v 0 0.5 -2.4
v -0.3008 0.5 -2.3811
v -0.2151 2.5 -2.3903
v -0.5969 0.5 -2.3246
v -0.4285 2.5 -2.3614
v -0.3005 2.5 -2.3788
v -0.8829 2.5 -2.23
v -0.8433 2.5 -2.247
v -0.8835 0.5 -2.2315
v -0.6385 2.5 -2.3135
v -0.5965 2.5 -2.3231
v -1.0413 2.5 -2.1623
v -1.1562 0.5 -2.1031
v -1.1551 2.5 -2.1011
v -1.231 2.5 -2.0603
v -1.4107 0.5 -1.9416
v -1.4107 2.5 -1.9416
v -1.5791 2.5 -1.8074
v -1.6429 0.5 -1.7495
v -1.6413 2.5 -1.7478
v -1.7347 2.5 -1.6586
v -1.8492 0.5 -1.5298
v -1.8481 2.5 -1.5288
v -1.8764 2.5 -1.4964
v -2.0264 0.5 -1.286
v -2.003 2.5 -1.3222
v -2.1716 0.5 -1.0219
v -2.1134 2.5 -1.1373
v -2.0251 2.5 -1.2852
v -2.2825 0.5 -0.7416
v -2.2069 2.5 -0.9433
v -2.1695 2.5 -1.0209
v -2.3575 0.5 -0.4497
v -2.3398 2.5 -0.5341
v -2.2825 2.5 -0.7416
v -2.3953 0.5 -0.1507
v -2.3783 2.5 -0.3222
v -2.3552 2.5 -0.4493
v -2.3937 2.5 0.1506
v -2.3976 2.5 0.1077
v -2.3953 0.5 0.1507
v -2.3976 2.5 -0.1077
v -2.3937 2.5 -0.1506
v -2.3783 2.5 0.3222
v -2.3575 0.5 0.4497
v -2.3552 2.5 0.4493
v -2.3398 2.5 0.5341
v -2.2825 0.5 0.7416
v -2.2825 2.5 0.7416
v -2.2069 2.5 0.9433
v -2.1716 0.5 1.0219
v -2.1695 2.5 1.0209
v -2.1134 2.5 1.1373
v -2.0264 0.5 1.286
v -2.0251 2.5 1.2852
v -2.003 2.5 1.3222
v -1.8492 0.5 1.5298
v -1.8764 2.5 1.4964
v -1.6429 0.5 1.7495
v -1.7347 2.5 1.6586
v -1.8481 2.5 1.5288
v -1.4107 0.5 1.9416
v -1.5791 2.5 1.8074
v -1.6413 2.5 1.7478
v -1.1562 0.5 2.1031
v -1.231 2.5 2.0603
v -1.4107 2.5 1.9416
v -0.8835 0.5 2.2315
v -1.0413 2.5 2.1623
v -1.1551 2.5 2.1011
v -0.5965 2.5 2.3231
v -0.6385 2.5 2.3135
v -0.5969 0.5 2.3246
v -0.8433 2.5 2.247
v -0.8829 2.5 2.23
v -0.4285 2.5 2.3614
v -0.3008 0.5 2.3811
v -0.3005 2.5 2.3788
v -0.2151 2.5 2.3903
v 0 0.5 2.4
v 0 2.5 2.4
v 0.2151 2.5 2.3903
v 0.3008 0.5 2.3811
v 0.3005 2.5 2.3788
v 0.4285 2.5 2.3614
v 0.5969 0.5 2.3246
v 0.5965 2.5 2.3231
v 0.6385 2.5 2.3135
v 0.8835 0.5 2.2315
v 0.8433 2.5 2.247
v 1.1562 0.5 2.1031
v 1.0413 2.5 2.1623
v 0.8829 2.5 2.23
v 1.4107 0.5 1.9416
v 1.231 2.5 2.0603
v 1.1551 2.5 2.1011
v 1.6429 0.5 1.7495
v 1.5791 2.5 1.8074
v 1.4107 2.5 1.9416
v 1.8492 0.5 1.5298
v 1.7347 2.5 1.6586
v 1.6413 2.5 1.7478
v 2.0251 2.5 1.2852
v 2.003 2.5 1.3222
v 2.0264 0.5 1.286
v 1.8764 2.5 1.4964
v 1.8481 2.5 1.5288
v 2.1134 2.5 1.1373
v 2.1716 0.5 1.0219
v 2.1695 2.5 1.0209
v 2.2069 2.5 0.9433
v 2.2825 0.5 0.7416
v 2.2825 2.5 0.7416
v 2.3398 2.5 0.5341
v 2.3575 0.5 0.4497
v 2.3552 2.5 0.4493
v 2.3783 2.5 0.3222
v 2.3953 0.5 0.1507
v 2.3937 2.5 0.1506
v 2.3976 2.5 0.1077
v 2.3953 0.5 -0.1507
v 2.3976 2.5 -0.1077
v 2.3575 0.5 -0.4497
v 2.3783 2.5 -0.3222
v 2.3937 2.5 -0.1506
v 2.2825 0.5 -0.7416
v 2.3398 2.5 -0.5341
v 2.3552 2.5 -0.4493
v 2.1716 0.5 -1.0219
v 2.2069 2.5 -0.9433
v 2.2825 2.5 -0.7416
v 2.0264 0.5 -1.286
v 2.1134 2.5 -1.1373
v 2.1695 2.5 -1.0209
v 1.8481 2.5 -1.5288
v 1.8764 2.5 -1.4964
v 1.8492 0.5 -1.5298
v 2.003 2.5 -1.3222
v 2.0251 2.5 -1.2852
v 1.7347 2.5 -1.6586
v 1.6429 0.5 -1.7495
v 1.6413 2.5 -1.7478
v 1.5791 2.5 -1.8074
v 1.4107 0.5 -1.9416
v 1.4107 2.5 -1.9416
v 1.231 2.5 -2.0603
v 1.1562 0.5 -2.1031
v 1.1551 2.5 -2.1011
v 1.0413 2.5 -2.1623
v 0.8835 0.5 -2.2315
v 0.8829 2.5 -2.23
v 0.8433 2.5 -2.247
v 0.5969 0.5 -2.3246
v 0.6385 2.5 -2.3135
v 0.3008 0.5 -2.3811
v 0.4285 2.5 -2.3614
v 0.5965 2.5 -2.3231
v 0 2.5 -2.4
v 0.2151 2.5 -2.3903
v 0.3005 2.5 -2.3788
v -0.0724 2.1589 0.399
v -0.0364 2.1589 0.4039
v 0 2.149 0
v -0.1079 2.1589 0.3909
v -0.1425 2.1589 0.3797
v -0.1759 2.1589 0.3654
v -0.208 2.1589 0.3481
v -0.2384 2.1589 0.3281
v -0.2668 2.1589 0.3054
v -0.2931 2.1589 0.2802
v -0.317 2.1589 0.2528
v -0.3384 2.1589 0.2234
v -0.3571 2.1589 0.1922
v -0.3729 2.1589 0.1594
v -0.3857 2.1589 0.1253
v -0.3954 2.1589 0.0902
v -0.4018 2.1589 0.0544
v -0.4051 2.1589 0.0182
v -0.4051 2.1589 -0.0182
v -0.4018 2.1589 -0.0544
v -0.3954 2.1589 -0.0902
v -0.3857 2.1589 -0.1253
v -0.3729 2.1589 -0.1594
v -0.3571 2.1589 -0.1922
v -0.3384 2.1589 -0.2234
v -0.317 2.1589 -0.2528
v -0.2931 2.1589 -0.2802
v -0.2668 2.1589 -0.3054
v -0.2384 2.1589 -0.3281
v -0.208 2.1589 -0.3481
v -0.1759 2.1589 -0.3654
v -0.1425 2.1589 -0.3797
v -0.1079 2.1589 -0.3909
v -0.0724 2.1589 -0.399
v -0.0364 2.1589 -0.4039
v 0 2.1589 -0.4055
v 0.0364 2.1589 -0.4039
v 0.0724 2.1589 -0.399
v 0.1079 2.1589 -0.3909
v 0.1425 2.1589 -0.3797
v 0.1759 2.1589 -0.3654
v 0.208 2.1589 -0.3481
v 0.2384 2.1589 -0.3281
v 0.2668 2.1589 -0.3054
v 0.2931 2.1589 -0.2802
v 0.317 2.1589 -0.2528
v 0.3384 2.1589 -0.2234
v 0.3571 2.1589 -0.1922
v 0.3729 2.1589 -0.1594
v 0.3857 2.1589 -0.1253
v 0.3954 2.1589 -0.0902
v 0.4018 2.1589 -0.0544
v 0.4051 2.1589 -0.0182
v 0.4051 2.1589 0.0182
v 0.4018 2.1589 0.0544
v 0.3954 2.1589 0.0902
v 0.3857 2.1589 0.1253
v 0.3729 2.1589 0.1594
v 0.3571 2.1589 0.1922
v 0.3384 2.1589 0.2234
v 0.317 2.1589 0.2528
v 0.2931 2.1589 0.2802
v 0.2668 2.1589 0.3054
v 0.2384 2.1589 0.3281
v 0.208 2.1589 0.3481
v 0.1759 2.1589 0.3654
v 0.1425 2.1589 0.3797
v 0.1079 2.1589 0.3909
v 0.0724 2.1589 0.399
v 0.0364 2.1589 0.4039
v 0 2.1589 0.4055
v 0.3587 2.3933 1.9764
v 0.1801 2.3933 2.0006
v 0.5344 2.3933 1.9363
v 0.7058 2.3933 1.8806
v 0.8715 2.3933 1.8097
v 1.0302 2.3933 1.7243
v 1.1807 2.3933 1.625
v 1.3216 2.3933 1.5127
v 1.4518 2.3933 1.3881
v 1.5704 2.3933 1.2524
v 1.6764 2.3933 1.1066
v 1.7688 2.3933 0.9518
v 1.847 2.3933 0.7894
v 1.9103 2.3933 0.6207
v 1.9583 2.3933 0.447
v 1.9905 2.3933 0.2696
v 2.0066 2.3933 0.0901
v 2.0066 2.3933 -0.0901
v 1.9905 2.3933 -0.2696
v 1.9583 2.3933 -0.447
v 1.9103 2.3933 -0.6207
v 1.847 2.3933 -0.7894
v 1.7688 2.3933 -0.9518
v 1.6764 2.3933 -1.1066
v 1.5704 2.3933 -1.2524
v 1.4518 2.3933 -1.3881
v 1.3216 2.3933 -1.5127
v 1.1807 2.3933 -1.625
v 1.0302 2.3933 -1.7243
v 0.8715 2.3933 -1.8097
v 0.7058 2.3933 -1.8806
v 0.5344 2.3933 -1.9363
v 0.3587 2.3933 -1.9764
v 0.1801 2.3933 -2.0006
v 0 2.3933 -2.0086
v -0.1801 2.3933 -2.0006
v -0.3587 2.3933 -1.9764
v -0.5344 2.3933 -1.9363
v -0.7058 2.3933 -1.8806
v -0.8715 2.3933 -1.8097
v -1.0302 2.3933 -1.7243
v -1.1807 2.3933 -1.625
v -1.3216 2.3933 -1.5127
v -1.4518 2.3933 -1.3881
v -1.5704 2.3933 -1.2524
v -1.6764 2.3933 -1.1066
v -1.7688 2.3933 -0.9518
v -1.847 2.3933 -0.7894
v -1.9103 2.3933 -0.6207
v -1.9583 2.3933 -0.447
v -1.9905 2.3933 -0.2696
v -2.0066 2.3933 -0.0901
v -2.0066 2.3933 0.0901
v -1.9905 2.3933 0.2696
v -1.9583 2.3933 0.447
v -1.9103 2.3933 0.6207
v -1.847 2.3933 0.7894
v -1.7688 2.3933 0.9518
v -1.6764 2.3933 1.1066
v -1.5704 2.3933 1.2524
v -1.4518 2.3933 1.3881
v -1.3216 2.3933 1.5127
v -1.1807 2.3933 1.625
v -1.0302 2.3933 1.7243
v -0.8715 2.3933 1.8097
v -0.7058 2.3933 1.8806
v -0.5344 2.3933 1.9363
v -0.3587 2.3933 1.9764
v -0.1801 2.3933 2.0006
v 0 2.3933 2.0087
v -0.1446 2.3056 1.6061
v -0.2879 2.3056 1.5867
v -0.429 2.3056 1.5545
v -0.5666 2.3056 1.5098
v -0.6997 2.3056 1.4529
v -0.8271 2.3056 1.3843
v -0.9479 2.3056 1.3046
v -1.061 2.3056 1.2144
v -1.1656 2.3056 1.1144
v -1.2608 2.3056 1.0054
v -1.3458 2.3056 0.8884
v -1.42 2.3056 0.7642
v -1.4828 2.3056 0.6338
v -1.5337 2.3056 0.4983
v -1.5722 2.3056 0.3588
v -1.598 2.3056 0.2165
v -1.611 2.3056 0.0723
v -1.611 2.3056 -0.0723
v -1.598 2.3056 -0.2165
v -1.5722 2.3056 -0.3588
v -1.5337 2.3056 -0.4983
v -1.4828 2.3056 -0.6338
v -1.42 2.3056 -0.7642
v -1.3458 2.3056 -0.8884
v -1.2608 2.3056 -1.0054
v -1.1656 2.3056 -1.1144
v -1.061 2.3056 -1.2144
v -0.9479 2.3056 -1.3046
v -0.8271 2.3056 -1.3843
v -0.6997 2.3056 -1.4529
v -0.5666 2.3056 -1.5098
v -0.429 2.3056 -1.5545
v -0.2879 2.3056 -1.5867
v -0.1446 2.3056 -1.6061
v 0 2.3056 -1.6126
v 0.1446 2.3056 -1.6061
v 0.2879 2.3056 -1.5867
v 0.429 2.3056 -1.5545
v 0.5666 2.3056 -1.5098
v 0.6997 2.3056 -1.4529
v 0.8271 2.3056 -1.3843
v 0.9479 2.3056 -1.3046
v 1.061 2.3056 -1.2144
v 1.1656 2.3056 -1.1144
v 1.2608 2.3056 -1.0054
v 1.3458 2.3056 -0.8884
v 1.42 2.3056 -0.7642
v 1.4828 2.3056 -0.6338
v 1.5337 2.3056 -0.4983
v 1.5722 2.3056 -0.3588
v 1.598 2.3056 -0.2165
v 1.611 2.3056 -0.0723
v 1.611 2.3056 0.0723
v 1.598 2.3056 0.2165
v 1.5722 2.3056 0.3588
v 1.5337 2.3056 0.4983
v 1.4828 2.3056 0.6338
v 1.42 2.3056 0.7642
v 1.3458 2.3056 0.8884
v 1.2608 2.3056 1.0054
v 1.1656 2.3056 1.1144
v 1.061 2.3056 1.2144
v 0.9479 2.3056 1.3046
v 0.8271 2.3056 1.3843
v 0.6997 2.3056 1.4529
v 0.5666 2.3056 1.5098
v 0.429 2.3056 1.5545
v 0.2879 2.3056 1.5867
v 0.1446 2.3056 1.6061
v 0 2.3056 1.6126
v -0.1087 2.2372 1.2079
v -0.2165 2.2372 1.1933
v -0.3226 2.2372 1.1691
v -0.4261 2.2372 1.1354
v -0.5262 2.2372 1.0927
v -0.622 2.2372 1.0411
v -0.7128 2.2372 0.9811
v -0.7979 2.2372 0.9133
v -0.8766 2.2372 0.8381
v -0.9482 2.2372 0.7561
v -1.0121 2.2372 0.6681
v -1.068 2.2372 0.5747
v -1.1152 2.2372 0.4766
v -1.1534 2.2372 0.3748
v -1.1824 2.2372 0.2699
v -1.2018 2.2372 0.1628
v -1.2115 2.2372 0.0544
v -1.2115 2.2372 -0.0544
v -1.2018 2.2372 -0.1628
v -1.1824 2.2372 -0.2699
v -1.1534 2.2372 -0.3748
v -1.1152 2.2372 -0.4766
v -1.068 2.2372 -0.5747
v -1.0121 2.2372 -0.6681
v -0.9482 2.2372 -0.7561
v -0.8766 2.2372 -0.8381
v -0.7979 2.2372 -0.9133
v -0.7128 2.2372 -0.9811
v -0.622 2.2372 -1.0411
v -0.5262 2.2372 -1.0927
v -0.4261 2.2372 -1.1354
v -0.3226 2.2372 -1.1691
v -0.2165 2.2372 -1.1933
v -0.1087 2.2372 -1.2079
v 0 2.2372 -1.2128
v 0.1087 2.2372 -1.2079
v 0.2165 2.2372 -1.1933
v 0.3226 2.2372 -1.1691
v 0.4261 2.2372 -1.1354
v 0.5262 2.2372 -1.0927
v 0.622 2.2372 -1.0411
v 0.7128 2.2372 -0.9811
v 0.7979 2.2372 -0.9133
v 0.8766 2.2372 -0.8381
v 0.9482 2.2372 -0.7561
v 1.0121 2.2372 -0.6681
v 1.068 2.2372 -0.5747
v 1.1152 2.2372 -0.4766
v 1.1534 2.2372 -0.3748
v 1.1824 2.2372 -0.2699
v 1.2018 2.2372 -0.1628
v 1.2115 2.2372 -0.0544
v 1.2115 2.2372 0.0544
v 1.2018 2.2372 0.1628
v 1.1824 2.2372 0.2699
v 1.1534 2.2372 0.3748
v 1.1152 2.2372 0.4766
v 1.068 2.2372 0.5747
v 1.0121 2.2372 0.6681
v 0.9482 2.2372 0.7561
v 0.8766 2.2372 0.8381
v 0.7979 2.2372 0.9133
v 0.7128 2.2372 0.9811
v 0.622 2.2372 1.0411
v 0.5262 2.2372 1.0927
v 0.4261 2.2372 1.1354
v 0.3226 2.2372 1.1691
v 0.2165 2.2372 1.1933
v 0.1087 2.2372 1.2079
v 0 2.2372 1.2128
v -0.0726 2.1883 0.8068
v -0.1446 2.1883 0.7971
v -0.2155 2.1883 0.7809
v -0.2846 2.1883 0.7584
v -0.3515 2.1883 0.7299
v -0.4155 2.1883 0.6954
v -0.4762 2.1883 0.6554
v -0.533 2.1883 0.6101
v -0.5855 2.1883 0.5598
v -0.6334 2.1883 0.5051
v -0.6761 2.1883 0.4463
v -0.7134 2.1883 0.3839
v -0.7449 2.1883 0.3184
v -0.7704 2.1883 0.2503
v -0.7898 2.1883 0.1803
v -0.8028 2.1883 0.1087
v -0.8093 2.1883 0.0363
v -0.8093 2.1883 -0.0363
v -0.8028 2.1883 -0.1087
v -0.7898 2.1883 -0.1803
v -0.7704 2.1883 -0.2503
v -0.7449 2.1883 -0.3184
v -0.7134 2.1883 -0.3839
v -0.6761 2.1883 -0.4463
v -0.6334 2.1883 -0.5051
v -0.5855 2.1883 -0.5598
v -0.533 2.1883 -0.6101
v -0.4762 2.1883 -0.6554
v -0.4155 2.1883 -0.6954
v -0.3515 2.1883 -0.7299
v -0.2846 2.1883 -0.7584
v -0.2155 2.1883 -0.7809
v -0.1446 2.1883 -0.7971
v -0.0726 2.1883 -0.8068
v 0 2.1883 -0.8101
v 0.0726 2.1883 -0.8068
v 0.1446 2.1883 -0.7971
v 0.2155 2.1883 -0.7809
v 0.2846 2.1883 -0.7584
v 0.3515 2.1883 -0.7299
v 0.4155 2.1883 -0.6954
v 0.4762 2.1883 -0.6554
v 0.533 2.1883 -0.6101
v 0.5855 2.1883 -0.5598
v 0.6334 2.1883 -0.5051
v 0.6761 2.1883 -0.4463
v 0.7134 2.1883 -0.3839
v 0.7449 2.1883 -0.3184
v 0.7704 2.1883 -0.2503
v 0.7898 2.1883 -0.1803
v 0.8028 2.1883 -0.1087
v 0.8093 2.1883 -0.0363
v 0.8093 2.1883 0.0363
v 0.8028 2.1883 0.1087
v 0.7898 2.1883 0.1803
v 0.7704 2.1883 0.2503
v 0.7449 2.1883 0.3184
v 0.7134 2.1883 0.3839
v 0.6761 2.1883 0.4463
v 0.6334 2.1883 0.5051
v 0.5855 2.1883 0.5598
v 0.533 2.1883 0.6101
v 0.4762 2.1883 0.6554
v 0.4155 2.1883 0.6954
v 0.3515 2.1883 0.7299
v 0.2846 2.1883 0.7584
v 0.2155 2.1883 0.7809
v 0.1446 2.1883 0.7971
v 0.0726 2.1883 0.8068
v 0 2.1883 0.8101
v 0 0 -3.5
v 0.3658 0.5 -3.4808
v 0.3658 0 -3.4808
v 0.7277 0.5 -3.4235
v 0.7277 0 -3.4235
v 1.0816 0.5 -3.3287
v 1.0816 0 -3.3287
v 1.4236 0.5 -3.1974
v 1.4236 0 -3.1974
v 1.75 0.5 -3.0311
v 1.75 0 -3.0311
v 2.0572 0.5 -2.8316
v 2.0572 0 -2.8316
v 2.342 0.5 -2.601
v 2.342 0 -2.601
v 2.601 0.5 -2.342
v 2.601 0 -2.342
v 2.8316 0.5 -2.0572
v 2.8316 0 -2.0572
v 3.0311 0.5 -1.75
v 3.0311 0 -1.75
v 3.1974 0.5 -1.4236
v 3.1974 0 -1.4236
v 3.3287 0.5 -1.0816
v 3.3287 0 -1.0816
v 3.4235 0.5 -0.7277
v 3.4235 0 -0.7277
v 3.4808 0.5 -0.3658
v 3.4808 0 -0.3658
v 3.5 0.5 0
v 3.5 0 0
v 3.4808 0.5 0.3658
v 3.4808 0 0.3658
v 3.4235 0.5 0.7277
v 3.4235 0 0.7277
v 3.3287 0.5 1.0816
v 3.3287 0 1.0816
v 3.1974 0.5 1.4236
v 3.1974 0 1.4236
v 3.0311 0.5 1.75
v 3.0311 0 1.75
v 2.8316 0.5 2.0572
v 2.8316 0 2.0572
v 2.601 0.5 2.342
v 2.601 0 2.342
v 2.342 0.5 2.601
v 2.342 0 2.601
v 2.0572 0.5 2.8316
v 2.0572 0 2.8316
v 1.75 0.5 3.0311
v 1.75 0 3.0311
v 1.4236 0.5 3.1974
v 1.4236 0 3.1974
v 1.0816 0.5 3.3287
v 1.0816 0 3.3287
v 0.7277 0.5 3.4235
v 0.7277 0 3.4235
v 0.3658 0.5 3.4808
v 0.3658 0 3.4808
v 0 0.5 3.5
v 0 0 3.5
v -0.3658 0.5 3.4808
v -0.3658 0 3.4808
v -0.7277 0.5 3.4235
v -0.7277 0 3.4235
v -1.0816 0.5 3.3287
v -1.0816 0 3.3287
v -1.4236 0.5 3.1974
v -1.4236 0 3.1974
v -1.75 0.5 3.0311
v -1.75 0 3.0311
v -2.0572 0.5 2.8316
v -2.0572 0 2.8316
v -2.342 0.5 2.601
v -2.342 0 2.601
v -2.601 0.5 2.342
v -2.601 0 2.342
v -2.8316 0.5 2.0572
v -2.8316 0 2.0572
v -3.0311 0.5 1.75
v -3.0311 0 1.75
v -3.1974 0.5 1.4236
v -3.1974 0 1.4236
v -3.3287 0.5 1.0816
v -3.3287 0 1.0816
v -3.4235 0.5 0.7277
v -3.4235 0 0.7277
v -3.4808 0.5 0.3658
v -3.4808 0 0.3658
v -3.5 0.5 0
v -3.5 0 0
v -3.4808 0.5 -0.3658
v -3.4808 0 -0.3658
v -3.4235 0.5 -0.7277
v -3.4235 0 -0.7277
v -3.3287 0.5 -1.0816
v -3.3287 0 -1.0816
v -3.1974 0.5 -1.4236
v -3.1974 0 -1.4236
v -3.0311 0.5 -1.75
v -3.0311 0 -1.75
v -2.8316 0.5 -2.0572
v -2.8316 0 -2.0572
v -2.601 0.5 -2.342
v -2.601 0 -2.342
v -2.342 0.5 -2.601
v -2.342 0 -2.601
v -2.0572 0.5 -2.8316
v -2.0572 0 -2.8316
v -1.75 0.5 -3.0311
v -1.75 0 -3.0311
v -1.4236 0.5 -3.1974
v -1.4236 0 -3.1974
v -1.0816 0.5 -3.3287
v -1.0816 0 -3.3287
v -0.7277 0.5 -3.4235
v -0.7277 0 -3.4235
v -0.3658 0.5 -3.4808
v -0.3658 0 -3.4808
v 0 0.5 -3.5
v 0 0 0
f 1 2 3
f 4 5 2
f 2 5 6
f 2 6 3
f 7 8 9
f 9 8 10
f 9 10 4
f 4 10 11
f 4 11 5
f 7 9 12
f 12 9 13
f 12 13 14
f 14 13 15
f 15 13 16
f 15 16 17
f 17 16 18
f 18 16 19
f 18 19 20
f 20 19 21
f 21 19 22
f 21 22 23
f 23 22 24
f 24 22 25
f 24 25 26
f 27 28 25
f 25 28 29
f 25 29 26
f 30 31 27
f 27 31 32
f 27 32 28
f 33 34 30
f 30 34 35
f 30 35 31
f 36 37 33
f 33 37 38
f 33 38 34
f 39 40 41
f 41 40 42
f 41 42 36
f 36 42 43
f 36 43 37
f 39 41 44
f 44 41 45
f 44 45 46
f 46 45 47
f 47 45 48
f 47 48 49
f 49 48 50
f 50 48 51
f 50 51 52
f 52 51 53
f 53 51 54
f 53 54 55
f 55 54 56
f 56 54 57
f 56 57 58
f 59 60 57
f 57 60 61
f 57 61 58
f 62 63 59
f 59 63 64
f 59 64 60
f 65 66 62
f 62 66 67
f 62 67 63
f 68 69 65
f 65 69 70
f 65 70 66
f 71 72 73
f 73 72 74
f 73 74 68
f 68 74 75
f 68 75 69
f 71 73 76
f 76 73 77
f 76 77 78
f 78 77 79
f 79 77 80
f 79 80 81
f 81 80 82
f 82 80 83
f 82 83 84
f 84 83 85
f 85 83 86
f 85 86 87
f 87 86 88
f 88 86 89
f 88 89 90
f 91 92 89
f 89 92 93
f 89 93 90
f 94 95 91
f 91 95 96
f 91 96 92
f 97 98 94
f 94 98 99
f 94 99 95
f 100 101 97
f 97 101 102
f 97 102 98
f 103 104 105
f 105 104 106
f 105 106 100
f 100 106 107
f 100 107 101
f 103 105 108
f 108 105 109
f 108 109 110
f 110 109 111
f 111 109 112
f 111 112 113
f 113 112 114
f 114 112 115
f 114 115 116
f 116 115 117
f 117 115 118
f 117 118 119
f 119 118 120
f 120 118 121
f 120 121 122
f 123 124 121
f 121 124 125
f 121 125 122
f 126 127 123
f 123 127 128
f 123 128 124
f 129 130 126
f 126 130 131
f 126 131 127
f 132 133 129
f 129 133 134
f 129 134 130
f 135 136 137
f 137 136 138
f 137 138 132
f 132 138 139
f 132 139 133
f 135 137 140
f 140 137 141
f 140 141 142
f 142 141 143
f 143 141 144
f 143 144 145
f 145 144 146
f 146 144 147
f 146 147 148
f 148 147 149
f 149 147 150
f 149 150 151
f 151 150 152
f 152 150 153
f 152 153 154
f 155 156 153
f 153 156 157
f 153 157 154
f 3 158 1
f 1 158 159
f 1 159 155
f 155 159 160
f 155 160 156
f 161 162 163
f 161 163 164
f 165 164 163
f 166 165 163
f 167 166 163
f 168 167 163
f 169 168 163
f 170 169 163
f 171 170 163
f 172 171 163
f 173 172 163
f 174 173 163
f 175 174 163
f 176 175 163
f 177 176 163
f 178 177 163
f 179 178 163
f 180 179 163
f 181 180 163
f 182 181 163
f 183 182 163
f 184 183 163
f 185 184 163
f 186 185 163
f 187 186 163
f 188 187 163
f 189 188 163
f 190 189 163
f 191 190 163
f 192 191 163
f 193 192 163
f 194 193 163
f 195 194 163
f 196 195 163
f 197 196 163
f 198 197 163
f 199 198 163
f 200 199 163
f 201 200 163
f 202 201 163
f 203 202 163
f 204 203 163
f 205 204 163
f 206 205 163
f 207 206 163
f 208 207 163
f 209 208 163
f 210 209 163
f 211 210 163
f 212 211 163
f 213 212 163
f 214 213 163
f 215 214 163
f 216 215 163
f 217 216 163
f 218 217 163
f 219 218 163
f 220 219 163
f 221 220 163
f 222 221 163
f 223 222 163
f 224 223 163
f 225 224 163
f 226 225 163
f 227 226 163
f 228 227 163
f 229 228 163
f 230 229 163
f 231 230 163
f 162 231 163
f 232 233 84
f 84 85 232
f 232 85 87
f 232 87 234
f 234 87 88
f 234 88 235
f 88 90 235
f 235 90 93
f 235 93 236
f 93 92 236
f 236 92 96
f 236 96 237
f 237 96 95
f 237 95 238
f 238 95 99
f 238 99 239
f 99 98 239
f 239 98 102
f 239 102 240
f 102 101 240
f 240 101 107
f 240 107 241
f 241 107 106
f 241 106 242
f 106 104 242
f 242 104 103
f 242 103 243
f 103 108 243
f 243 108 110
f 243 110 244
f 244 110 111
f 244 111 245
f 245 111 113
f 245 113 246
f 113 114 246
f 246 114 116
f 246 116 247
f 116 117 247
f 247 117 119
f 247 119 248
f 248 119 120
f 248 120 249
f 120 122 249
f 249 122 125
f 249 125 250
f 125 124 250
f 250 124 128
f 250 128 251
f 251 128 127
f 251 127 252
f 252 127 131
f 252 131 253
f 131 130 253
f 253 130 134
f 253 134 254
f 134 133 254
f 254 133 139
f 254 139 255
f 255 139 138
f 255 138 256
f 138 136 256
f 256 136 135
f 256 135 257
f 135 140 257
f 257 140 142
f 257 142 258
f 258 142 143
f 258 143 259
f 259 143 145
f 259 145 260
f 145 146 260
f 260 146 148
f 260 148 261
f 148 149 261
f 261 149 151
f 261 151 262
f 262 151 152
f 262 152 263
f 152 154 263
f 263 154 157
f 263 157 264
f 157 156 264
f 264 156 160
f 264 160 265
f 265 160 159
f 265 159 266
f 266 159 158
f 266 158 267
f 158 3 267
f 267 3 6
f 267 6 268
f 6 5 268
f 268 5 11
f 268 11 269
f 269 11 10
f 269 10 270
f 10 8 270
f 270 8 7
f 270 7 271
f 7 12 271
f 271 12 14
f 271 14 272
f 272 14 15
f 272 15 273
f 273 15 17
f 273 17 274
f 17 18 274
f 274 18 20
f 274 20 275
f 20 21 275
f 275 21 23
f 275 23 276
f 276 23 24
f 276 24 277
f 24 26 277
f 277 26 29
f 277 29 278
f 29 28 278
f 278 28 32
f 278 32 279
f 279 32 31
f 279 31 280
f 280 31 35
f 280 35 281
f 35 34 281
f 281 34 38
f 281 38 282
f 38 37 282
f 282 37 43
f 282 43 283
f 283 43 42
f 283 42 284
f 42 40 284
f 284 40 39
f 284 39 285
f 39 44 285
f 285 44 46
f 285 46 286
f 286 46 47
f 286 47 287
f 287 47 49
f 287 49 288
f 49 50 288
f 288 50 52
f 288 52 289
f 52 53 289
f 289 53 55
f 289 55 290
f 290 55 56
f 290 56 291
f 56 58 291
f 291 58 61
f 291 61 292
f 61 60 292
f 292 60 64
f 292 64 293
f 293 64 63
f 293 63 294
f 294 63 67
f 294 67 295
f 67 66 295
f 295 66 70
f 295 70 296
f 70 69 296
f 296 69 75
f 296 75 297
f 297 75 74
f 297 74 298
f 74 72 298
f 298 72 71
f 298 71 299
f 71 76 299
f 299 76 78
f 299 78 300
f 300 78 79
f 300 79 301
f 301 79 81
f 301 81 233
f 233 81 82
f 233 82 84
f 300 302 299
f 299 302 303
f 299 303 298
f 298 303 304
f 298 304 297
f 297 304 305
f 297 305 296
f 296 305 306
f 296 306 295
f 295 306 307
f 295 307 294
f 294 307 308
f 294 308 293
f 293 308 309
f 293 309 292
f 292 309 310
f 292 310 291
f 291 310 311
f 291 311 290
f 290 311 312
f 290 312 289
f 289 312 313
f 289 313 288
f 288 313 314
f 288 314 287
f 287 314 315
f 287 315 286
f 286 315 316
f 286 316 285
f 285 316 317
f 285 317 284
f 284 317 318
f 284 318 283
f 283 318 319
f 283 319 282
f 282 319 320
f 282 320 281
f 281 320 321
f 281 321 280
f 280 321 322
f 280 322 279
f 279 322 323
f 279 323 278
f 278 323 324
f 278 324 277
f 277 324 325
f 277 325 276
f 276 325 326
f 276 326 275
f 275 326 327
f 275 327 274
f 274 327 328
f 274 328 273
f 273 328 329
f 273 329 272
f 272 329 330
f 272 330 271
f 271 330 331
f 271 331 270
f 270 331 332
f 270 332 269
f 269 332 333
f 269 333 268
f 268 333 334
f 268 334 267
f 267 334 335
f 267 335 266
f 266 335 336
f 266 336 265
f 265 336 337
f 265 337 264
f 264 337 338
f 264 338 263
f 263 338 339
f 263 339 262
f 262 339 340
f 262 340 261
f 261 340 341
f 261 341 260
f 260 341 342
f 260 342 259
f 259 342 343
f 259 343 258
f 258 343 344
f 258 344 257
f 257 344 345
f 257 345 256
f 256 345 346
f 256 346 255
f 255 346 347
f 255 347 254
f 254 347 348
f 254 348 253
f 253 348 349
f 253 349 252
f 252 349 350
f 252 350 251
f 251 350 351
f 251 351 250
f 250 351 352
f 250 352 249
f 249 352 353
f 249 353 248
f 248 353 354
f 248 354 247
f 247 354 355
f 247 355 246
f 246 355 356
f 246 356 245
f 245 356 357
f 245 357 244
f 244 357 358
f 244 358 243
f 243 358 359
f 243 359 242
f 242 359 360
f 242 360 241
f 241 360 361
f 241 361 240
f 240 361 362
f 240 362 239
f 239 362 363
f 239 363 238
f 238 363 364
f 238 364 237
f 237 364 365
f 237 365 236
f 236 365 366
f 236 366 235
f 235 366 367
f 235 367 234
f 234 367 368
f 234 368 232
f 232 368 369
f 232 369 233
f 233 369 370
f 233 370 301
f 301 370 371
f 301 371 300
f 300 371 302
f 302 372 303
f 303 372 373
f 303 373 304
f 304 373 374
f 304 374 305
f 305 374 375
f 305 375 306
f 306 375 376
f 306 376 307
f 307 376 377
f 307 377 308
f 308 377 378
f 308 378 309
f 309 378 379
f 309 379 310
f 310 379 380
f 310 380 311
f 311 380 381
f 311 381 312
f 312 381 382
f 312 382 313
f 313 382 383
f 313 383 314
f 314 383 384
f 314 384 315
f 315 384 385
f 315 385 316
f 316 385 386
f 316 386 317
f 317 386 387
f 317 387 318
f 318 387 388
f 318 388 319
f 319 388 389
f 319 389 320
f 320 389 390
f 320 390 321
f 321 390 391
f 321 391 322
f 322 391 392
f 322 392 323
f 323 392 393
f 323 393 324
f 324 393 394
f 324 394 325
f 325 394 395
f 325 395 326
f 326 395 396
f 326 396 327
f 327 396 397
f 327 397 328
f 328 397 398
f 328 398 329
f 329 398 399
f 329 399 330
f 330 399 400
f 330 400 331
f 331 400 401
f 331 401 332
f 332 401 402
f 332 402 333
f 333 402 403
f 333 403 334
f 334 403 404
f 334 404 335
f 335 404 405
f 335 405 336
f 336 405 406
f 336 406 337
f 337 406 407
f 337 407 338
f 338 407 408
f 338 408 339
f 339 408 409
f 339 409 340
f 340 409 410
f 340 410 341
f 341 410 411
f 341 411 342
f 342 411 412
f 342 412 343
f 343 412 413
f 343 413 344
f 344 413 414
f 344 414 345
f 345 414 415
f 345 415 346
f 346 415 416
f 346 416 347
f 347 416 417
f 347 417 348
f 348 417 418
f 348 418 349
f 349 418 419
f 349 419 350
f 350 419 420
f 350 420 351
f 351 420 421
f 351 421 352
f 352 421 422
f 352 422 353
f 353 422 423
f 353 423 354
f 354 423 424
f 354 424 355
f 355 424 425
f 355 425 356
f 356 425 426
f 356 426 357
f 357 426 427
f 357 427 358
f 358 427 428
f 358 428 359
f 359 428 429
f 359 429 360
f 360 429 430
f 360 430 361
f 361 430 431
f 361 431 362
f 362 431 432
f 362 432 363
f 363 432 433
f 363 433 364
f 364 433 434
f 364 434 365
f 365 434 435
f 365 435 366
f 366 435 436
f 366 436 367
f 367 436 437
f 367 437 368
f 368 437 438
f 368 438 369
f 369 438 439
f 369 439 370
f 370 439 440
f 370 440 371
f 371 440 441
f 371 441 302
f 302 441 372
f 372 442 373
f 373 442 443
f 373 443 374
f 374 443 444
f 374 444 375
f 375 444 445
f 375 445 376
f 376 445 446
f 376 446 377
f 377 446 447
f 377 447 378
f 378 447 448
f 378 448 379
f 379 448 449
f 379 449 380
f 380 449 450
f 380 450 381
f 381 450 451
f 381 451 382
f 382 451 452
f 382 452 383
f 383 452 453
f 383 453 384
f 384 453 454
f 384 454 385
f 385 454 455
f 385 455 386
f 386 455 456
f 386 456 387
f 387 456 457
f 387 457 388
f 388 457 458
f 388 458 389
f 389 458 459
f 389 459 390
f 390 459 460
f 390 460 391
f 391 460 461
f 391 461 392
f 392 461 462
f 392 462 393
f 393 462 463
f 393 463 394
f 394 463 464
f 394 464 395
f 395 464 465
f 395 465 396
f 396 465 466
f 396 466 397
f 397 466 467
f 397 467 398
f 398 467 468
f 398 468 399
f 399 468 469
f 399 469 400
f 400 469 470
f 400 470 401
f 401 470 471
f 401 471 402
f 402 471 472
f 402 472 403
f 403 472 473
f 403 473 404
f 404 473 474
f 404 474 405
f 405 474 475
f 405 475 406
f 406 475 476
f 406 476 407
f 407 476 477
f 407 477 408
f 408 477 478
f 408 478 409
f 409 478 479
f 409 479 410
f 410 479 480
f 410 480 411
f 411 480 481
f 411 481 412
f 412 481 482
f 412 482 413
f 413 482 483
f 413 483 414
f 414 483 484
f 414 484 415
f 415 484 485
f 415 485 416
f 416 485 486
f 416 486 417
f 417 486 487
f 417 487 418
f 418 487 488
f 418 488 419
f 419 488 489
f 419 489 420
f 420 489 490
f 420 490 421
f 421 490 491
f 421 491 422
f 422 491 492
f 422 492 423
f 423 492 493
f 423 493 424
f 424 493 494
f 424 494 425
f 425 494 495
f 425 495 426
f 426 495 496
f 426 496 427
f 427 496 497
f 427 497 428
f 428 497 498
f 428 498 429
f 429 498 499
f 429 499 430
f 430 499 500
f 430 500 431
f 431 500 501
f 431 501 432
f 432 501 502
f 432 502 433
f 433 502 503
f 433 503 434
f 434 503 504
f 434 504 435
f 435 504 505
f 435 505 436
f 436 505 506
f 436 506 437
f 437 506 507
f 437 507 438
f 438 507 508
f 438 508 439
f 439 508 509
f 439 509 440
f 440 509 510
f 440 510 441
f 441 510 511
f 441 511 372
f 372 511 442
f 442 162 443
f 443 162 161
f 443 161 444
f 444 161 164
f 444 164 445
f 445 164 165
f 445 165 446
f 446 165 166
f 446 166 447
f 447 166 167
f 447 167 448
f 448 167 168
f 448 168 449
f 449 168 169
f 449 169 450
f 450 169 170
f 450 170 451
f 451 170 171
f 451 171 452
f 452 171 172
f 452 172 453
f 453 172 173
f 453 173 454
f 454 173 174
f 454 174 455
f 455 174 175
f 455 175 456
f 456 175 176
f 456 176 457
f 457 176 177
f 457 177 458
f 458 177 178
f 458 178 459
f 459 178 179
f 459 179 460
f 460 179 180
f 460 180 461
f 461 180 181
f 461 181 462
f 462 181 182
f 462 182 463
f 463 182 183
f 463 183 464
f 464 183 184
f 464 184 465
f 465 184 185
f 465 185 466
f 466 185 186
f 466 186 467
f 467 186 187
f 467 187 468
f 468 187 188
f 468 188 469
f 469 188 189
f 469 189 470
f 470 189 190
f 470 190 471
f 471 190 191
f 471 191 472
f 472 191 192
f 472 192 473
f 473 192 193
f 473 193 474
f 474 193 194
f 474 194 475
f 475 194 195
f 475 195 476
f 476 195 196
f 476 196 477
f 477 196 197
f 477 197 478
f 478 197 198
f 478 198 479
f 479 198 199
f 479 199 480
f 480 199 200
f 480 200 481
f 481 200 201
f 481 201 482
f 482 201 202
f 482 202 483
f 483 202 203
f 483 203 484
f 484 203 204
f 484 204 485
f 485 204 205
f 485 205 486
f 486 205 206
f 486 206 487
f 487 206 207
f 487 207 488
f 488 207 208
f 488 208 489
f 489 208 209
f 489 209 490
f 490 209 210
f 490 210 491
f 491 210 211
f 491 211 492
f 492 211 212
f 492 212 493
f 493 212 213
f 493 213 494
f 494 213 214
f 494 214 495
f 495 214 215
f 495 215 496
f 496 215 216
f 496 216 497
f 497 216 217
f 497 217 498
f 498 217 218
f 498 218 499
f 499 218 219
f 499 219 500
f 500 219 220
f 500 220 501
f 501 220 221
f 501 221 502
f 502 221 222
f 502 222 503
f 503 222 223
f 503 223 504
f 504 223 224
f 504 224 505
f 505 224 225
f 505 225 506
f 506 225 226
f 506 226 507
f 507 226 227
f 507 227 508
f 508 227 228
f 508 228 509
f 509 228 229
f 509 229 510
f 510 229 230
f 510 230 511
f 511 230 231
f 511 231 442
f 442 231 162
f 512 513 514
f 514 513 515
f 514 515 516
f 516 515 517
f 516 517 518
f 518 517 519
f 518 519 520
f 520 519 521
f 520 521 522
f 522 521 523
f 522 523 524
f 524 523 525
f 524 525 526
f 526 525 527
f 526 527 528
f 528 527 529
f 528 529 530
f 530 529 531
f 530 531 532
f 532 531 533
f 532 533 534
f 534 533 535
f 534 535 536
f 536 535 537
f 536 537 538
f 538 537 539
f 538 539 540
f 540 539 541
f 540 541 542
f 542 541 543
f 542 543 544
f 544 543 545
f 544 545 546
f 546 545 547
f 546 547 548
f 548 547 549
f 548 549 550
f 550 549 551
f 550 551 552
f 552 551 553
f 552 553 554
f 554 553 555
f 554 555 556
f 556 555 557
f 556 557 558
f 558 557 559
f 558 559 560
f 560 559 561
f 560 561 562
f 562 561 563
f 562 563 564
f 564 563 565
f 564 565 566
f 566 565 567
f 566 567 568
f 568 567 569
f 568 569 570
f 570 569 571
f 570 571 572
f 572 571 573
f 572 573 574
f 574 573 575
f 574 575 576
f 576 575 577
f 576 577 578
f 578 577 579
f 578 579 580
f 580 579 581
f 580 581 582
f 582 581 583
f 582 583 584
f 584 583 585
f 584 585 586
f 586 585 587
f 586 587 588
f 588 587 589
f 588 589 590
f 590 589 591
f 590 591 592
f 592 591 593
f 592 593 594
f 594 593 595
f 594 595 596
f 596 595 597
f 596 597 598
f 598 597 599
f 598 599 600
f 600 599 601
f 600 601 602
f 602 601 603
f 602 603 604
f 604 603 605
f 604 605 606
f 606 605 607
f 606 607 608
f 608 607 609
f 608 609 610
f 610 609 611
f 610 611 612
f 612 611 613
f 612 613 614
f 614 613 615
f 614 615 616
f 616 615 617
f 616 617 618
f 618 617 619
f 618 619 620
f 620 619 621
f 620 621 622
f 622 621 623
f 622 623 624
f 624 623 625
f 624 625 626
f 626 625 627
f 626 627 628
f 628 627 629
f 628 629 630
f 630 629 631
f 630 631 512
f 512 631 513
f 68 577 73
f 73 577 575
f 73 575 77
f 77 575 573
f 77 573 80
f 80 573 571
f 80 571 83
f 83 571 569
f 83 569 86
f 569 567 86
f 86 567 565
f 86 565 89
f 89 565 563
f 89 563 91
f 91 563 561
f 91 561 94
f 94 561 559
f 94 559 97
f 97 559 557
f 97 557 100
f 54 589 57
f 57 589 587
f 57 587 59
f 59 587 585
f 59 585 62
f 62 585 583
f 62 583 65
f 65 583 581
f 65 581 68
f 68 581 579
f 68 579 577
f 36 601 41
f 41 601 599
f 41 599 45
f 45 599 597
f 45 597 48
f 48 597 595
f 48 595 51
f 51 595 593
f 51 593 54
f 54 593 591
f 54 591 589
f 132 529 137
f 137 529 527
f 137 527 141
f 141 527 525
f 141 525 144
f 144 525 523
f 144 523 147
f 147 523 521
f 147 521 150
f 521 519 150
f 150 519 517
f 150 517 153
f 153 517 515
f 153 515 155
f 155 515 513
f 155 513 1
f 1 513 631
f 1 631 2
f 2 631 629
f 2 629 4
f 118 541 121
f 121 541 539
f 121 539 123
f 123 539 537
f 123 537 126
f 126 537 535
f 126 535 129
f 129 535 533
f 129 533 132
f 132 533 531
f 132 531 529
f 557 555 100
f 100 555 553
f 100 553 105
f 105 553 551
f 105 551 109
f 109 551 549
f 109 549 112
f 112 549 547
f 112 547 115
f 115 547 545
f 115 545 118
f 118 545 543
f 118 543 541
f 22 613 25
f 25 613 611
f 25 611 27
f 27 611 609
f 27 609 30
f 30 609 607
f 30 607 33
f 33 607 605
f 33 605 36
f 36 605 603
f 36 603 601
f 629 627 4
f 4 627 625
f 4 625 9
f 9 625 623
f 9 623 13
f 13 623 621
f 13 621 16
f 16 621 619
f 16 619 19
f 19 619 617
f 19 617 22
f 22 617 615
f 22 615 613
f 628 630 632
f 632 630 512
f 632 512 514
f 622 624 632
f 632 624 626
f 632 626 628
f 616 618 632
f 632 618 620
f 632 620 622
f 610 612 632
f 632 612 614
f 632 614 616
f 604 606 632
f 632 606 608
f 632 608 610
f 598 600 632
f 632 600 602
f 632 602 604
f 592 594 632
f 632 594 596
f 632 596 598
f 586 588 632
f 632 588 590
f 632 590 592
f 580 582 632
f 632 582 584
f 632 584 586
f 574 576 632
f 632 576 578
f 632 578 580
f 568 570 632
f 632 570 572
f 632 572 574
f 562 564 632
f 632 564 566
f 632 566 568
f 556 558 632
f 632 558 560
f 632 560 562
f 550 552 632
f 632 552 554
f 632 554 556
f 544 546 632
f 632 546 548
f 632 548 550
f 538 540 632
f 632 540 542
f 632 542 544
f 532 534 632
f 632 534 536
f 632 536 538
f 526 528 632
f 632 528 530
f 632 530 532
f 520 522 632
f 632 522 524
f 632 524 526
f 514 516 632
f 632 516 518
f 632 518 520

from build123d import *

# Parameters (mm, degrees)
SKETCH_1_R      = 2.4
EXTRUDE_1_DEPTH = 2.5
SKETCH_3_R      = 3.5
EXTRUDE_2_DEPTH = 0.5


with BuildPart() as part:
    # Эскиз1 → Бобышка-Вытянуть1 (new body)
    with BuildSketch(Plane(origin=(0, 0, 0), x_dir=(1, 0, 0), z_dir=(0, 1, 0))):
        with Locations(Location((0, 0, 0), (0, 0, 270))):
            Circle(SKETCH_1_R)
    extrude(amount=EXTRUDE_1_DEPTH)

    # Эскиз2 → Вырез-Повернуть1 (revolve, cut)
    with BuildSketch(Plane(origin=(0, 0, 0), x_dir=(0, 0, -1), z_dir=(1, 0, 0))):
        with BuildLine():
            Line((0, 2.5), (0, 2.149039298))
            ThreePointArc((0, 2.149039298), (1.212762695, 2.237243589), (2.4, 2.5))
            Line((2.4, 2.5), (0, 2.5))
        make_face()
    revolve(axis=Axis((0, 2.5, 0), (0, 1, 0)), mode=Mode.SUBTRACT)

    # Эскиз3 → Бобышка-Вытянуть2 (add)
    with BuildSketch(Plane.XZ):
        with Locations(Location((0, 0, 0), (0, 0, 270))):
            Circle(SKETCH_3_R)
    extrude(amount=-EXTRUDE_2_DEPTH)


solid = part.part
